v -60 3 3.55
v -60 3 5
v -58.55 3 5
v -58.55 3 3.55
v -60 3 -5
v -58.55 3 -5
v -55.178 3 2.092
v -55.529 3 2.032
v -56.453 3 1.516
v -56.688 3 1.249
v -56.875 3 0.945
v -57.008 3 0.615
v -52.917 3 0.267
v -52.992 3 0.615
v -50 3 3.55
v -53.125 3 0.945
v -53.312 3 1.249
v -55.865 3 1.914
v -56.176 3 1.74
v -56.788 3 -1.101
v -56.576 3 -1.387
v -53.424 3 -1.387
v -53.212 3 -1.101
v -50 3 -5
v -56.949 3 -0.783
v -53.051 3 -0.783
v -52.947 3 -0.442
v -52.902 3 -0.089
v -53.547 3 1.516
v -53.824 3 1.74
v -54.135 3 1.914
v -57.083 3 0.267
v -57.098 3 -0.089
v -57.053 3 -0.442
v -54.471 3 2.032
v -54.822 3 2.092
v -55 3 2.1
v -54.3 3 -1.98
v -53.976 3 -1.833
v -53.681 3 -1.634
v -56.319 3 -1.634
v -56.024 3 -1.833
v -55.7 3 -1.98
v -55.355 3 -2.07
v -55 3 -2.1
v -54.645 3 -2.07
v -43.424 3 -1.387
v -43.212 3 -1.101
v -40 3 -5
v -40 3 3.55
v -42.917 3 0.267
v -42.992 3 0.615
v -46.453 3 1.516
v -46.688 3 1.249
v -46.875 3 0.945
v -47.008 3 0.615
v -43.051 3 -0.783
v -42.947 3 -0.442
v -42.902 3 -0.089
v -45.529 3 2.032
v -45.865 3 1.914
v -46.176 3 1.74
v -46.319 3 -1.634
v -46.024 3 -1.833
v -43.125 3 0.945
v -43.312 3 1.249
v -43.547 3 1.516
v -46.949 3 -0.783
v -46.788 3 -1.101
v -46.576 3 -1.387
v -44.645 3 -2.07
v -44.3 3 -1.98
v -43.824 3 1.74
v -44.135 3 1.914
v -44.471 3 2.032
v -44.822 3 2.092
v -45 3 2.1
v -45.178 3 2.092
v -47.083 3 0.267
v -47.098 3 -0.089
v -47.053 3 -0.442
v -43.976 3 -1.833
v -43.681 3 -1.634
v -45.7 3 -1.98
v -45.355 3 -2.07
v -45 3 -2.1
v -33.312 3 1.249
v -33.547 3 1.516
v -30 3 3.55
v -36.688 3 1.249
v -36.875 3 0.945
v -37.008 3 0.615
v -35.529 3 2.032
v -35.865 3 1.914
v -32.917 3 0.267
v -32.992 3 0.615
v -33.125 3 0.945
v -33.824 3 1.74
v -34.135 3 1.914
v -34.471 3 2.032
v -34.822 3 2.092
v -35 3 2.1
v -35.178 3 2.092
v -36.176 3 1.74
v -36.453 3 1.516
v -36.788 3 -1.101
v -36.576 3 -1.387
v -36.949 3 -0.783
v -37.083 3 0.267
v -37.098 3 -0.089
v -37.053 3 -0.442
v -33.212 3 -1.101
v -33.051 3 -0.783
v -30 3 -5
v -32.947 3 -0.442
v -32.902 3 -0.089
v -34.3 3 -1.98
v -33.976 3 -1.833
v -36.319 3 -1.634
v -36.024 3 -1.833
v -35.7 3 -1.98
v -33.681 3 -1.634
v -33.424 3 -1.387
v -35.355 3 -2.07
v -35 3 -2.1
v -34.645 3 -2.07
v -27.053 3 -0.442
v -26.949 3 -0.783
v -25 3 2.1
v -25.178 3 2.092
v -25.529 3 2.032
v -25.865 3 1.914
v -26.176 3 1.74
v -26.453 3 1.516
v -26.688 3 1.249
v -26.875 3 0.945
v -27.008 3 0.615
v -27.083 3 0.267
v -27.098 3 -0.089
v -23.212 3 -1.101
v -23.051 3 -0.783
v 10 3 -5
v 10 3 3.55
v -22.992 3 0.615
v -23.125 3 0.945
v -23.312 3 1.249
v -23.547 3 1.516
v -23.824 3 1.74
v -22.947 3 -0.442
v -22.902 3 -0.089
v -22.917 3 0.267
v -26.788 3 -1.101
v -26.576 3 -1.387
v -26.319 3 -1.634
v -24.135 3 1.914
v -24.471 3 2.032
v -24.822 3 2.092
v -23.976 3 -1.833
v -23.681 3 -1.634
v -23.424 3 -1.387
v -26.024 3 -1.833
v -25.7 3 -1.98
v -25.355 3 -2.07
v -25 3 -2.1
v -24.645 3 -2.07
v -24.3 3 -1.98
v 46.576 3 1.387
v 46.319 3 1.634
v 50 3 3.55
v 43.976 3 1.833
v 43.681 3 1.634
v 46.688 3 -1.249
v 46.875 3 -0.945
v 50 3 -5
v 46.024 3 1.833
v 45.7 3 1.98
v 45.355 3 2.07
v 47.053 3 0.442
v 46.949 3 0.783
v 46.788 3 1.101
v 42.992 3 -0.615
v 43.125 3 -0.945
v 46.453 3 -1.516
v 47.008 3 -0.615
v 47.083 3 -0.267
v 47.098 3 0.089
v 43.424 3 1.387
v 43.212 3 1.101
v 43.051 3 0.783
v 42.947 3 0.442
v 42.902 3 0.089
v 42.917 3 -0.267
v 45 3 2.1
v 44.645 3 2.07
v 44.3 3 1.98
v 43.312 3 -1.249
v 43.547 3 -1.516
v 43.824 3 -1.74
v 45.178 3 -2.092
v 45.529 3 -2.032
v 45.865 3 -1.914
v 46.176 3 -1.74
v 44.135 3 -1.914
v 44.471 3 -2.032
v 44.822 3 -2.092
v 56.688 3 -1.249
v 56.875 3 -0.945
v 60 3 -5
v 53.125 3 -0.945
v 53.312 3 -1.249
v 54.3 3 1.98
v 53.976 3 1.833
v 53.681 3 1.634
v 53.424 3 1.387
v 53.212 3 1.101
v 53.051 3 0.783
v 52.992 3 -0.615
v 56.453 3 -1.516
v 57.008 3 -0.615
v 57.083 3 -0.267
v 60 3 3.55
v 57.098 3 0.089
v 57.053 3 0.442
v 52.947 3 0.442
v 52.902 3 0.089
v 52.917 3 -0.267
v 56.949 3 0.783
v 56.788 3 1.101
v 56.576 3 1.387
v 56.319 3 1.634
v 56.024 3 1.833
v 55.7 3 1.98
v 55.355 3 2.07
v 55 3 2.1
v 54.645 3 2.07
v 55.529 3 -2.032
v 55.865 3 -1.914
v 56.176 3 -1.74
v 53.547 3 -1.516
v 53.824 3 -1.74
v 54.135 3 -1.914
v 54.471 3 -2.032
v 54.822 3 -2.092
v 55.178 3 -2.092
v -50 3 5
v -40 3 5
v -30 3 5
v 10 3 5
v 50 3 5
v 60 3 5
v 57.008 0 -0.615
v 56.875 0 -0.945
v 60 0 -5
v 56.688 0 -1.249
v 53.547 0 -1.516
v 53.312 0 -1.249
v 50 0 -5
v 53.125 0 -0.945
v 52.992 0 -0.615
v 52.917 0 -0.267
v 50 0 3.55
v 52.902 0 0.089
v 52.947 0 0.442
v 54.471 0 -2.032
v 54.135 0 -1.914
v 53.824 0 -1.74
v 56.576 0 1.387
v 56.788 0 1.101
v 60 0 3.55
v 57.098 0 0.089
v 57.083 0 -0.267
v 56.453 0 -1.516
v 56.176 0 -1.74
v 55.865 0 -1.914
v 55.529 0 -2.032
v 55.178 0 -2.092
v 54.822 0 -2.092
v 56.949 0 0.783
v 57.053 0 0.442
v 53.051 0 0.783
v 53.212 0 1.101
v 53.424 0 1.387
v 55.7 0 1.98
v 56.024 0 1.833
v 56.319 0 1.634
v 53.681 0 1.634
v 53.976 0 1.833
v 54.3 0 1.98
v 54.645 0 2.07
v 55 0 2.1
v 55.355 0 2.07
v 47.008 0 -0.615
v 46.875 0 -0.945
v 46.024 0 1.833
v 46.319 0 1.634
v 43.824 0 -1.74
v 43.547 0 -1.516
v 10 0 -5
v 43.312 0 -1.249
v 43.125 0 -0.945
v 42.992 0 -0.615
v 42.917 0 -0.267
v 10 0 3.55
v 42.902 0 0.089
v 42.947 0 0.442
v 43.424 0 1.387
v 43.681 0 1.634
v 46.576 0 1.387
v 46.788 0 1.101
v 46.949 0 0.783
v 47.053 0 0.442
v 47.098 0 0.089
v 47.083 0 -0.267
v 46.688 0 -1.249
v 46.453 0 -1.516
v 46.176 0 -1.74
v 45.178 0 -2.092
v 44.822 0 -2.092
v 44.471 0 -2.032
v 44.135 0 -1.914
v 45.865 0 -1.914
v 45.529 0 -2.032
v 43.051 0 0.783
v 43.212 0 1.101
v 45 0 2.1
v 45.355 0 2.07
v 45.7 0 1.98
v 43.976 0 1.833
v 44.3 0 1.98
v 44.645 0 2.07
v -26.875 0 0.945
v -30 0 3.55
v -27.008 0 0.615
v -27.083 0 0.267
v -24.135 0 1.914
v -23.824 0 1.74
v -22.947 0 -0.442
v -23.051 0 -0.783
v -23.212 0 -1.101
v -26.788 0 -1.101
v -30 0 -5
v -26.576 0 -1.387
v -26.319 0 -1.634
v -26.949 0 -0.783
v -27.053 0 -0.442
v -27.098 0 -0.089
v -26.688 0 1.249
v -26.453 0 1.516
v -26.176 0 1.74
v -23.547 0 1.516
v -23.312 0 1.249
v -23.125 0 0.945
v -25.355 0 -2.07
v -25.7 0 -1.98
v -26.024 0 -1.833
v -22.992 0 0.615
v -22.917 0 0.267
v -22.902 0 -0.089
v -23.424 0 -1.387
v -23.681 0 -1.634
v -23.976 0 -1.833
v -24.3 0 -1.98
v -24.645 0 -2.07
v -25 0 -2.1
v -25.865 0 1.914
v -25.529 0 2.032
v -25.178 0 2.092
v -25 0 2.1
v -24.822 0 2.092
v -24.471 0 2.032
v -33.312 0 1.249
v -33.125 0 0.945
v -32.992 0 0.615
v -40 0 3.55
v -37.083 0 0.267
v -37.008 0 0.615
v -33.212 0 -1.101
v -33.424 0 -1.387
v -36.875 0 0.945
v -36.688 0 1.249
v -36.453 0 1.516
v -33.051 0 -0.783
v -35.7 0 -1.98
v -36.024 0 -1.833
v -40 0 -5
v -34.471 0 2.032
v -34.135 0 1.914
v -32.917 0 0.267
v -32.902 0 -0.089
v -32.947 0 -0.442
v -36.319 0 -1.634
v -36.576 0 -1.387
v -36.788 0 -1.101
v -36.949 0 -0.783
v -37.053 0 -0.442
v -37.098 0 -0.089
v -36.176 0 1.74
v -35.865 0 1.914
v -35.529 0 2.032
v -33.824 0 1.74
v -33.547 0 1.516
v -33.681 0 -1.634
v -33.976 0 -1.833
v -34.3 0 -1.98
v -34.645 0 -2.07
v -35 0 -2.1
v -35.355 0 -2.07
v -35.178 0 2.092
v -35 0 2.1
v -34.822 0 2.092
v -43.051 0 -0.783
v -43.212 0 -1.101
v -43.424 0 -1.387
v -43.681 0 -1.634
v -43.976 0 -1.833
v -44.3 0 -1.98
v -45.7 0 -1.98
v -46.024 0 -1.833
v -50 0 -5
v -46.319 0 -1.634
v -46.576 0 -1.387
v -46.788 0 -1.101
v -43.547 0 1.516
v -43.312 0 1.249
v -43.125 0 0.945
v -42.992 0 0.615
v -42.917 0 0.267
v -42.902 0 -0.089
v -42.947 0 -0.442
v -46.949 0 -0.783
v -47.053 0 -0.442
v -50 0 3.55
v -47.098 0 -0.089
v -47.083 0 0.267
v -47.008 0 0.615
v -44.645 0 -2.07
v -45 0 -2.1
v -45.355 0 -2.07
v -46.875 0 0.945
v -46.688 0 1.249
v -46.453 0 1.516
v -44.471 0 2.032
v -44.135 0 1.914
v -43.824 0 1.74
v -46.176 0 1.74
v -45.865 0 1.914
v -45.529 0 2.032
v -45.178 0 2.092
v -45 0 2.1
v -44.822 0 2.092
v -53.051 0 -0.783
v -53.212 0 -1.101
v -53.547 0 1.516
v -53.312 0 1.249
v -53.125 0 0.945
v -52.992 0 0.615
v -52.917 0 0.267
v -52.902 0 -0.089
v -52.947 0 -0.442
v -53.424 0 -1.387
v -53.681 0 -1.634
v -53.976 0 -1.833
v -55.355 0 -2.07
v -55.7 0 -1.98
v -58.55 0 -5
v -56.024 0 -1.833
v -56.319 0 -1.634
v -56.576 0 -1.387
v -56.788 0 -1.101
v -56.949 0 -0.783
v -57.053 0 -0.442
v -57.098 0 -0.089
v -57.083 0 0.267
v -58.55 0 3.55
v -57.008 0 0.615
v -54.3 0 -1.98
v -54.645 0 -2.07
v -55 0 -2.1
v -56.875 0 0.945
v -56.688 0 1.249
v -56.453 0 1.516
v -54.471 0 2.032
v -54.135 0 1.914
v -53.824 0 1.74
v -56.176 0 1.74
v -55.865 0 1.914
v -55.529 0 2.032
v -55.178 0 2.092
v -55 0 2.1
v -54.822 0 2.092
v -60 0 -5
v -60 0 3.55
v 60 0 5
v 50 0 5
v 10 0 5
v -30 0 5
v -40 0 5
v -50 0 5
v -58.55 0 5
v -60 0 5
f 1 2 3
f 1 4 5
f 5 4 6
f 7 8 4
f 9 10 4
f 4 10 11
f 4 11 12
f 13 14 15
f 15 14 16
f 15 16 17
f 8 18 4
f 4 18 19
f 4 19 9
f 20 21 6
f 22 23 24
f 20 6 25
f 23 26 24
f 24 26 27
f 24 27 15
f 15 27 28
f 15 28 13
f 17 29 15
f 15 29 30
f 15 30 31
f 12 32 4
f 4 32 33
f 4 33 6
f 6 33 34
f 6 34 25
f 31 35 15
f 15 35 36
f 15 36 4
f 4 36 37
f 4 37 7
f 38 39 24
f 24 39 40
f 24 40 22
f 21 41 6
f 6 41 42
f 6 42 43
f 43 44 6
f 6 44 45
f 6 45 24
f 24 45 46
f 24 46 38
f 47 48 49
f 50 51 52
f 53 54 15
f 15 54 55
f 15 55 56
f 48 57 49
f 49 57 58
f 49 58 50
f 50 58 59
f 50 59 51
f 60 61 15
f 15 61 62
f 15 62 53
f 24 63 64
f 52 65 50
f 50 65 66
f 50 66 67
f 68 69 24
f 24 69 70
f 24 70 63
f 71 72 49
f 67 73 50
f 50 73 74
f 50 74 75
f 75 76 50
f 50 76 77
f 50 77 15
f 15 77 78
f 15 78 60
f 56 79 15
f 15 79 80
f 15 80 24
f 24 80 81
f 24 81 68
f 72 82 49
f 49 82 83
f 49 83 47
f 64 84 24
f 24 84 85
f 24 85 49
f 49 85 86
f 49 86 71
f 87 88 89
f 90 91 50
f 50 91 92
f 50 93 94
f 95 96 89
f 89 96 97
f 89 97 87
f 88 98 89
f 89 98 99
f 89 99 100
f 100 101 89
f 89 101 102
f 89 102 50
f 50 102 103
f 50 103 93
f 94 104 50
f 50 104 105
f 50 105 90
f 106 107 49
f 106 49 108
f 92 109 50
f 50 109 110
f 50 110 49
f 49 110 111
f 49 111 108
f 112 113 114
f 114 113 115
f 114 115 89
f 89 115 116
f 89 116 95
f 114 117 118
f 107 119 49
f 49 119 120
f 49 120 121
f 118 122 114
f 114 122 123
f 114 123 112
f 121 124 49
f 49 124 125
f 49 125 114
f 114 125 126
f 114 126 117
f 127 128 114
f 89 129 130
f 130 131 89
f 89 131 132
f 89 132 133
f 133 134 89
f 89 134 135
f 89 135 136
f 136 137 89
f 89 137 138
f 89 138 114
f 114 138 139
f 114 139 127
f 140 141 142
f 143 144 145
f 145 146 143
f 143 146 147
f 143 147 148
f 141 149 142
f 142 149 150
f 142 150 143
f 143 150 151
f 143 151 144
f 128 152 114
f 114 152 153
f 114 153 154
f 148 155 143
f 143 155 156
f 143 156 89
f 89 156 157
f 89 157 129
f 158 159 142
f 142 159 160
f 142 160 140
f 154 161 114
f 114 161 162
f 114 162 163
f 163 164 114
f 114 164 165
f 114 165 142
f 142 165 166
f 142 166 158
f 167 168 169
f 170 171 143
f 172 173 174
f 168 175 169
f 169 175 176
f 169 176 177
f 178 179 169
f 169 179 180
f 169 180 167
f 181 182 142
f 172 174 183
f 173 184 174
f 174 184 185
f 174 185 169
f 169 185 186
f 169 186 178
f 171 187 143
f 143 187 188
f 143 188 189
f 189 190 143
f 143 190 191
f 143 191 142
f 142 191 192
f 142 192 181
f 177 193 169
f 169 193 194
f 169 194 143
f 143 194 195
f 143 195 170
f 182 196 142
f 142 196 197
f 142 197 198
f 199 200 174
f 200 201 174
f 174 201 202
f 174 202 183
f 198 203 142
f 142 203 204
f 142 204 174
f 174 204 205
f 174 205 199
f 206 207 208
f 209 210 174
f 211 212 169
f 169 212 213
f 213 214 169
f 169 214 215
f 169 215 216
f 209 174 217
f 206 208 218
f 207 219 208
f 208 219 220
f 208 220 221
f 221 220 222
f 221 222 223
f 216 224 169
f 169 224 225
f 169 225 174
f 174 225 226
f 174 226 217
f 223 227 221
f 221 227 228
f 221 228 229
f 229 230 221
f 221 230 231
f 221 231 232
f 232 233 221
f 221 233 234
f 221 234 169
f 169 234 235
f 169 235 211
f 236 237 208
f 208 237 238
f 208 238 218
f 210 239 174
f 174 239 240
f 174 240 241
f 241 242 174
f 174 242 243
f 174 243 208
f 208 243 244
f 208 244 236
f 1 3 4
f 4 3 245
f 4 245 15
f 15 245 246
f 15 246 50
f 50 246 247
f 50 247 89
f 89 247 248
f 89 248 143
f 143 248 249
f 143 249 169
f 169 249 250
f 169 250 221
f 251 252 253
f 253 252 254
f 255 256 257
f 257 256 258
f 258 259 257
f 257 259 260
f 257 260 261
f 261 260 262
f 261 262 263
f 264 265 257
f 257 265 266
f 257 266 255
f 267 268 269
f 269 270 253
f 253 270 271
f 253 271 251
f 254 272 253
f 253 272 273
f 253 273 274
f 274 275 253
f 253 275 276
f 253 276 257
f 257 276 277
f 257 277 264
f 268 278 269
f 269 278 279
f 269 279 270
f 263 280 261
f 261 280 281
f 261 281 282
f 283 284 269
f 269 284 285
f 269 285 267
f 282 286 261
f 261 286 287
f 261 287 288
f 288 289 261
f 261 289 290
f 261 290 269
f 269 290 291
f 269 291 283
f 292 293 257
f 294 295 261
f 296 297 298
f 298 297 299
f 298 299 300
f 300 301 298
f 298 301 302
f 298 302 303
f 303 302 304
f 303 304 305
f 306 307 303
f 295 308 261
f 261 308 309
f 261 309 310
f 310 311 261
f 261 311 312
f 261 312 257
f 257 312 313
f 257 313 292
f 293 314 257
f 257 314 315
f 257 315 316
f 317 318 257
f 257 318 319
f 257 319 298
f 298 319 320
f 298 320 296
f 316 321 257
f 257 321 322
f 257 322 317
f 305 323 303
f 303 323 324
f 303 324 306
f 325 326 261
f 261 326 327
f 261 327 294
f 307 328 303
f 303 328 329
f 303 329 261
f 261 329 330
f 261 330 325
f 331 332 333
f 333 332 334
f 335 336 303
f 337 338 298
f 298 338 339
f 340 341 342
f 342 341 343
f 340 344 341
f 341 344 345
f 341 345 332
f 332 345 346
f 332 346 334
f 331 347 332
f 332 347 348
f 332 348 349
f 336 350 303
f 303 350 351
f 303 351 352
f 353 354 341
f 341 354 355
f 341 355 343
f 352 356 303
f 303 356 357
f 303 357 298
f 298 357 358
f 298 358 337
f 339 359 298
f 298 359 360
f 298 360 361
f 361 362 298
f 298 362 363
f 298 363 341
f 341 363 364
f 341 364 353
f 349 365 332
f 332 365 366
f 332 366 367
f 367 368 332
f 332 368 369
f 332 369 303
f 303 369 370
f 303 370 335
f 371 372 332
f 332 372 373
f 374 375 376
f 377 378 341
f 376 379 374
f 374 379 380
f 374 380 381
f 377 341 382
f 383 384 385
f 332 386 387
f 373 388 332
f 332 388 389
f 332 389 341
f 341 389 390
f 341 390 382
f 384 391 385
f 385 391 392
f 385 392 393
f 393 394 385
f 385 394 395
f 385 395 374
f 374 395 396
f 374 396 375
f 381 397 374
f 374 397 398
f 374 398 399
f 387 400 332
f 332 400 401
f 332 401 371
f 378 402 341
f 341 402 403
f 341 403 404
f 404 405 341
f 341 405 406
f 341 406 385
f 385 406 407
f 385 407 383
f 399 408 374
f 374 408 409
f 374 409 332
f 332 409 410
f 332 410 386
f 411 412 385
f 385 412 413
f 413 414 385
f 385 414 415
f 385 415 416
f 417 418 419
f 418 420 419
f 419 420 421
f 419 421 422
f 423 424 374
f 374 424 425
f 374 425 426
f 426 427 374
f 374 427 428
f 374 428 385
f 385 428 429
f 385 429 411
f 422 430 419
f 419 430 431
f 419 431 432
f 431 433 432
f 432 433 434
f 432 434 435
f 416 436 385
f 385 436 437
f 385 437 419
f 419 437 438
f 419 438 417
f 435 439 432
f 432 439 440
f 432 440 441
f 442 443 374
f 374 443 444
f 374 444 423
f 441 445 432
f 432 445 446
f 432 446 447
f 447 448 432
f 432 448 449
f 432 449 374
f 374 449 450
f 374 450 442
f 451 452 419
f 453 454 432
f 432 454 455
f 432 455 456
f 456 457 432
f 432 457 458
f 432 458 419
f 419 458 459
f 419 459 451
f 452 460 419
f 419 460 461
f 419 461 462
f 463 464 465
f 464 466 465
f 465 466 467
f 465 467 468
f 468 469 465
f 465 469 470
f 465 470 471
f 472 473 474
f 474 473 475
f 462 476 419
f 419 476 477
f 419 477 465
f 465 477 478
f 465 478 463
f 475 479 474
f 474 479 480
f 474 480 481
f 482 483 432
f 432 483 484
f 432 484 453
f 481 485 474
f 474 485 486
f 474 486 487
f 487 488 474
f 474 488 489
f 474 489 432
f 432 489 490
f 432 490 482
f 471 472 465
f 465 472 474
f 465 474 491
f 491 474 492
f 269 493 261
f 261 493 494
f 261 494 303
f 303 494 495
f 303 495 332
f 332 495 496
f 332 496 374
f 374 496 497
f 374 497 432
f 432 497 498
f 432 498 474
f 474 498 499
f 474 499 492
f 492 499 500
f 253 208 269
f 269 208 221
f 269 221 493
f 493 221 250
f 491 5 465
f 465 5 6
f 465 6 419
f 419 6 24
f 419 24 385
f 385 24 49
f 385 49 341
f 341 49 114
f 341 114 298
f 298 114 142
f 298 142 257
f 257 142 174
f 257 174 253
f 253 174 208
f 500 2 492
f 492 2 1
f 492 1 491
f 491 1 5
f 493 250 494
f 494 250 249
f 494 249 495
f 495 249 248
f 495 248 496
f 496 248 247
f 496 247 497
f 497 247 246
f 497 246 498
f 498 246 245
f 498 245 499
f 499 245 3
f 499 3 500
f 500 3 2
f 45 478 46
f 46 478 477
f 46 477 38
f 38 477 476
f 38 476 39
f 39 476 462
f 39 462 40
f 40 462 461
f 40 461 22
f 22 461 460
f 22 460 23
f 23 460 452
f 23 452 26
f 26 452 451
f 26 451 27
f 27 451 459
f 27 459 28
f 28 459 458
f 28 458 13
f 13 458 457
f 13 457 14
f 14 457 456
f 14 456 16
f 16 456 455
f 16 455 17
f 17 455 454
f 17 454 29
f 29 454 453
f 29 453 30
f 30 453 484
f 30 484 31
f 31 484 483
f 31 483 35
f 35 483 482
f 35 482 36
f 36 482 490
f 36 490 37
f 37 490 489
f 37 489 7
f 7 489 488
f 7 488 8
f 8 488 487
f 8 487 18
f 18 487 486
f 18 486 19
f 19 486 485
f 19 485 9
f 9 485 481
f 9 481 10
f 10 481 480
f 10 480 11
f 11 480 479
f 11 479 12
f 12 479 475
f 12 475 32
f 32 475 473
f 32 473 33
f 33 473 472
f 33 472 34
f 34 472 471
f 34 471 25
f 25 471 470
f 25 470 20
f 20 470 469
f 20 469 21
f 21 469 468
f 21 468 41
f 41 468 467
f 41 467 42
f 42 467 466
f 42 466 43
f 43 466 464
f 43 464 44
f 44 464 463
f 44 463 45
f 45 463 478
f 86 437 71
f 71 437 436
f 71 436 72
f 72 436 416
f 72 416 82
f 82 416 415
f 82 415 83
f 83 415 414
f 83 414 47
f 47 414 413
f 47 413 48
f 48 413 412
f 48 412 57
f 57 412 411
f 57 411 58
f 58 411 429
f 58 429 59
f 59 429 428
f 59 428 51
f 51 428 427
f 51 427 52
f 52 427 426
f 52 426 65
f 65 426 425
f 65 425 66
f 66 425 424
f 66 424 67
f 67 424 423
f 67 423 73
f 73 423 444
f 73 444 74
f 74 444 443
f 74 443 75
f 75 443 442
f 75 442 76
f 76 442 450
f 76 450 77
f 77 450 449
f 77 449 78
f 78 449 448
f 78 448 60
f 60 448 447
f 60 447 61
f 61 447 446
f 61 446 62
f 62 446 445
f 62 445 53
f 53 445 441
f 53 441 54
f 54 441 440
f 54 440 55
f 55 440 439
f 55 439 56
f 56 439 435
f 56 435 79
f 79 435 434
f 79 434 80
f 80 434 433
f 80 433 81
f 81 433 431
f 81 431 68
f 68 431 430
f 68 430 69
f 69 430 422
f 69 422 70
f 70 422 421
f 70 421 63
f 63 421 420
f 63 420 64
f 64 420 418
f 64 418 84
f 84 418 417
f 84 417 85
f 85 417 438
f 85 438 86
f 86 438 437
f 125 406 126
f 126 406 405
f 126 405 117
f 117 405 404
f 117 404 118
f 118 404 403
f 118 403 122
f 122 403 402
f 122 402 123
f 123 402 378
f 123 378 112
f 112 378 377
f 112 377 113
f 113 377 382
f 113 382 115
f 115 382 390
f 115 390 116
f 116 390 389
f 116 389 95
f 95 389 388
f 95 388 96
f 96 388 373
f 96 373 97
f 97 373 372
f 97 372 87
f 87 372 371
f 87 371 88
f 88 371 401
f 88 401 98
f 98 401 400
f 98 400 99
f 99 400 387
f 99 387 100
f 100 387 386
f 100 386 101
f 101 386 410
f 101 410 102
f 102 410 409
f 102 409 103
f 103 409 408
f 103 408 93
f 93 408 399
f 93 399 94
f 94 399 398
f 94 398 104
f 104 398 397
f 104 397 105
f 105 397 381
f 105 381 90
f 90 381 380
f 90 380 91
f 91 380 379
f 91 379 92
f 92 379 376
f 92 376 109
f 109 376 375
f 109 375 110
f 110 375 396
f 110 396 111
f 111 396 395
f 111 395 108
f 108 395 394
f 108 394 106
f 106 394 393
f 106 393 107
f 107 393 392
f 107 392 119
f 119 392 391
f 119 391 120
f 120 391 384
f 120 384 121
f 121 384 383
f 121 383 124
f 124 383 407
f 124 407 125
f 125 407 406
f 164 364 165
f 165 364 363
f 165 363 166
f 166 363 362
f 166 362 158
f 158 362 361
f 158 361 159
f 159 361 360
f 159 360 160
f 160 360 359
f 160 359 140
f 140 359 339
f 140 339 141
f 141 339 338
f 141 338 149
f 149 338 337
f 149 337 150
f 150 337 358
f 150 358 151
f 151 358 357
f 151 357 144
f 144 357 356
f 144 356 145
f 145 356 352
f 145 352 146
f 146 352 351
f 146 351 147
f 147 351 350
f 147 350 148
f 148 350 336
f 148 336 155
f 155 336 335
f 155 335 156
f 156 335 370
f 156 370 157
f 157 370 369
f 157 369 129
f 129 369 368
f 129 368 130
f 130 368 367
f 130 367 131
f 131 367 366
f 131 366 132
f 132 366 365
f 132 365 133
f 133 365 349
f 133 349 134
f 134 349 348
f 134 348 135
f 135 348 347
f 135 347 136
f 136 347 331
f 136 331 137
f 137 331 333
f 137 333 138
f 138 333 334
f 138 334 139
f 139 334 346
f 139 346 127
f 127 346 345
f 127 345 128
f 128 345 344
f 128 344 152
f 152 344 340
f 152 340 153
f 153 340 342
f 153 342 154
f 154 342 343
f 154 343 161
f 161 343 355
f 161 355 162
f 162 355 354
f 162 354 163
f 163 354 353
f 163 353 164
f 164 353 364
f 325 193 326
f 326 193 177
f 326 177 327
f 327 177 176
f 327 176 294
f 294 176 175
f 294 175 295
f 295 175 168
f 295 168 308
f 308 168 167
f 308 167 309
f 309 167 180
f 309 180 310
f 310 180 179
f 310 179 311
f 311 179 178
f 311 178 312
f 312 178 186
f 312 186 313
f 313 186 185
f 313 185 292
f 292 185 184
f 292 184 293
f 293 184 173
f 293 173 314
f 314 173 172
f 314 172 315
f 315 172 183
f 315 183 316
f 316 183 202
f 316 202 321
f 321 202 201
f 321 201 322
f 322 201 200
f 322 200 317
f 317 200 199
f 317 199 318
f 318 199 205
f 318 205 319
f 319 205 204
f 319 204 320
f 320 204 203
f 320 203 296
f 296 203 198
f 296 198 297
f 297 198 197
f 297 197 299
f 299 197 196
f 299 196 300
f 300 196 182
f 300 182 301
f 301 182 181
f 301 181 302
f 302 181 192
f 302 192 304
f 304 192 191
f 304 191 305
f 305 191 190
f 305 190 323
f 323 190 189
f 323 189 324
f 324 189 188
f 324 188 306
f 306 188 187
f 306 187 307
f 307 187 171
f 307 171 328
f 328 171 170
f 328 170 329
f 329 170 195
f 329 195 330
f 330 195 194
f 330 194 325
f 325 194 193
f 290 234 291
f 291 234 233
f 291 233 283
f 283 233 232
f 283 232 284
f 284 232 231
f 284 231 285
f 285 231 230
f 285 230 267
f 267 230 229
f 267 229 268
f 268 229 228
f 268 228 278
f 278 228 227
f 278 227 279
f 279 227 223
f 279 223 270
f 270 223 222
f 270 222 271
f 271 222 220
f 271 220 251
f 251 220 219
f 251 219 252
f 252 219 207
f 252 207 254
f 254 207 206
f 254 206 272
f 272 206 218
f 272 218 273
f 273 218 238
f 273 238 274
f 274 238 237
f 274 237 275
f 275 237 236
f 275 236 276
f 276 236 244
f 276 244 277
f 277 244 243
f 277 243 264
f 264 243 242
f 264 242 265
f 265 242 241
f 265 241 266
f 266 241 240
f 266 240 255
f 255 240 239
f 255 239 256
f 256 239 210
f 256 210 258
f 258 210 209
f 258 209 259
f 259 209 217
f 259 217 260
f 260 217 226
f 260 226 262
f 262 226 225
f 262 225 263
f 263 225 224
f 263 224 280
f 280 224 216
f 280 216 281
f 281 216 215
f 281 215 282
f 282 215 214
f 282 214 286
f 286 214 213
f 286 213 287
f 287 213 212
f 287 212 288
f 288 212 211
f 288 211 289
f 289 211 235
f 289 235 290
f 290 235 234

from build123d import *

# Parameters (mm, degrees)
CROQUIS1_W              = 120
CROQUIS1_H              = 10
CROQUIS1_R              = 2.1
SALIENTE_EXTRUIR1_DEPTH = 3
CROQUIS2_R              = 2.1
CORTAR_EXTRUIR1_DEPTH   = 3


with BuildPart() as part:
    # Croquis1 → Saliente-Extruir1 (new body)
    with BuildSketch(Plane(origin=(0, 0, 0), x_dir=(1, 0, 0), z_dir=(0, 1, 0))):
        Rectangle(CROQUIS1_W, CROQUIS1_H)
        with Locations(Location((-55, 0, 0), (0, 0, 270))):
            Circle(CROQUIS1_R, mode=Mode.SUBTRACT)
        with Locations(Location((-45, 0, 0), (0, 0, 270))):
            Circle(CROQUIS1_R, mode=Mode.SUBTRACT)
        with Locations(Location((-35, 0, 0), (0, 0, 270))):
            Circle(CROQUIS1_R, mode=Mode.SUBTRACT)
        with Locations(Location((-25, 0, 0), (0, 0, 270))):
            Circle(CROQUIS1_R, mode=Mode.SUBTRACT)
    extrude(amount=SALIENTE_EXTRUIR1_DEPTH)

    # Croquis2 → Cortar-Extruir1 (cut)
    with BuildSketch(Plane(origin=(0, 3, 0), x_dir=(1, 0, 0), z_dir=(0, 1, 0))):
        with Locations(Location((55, 0, 0), (0, 0, 270))):
            Circle(CROQUIS2_R)
        with Locations(Location((45, 0, 0), (0, 0, 270))):
            Circle(CROQUIS2_R)
    extrude(amount=-CORTAR_EXTRUIR1_DEPTH, mode=Mode.SUBTRACT)


solid = part.part
